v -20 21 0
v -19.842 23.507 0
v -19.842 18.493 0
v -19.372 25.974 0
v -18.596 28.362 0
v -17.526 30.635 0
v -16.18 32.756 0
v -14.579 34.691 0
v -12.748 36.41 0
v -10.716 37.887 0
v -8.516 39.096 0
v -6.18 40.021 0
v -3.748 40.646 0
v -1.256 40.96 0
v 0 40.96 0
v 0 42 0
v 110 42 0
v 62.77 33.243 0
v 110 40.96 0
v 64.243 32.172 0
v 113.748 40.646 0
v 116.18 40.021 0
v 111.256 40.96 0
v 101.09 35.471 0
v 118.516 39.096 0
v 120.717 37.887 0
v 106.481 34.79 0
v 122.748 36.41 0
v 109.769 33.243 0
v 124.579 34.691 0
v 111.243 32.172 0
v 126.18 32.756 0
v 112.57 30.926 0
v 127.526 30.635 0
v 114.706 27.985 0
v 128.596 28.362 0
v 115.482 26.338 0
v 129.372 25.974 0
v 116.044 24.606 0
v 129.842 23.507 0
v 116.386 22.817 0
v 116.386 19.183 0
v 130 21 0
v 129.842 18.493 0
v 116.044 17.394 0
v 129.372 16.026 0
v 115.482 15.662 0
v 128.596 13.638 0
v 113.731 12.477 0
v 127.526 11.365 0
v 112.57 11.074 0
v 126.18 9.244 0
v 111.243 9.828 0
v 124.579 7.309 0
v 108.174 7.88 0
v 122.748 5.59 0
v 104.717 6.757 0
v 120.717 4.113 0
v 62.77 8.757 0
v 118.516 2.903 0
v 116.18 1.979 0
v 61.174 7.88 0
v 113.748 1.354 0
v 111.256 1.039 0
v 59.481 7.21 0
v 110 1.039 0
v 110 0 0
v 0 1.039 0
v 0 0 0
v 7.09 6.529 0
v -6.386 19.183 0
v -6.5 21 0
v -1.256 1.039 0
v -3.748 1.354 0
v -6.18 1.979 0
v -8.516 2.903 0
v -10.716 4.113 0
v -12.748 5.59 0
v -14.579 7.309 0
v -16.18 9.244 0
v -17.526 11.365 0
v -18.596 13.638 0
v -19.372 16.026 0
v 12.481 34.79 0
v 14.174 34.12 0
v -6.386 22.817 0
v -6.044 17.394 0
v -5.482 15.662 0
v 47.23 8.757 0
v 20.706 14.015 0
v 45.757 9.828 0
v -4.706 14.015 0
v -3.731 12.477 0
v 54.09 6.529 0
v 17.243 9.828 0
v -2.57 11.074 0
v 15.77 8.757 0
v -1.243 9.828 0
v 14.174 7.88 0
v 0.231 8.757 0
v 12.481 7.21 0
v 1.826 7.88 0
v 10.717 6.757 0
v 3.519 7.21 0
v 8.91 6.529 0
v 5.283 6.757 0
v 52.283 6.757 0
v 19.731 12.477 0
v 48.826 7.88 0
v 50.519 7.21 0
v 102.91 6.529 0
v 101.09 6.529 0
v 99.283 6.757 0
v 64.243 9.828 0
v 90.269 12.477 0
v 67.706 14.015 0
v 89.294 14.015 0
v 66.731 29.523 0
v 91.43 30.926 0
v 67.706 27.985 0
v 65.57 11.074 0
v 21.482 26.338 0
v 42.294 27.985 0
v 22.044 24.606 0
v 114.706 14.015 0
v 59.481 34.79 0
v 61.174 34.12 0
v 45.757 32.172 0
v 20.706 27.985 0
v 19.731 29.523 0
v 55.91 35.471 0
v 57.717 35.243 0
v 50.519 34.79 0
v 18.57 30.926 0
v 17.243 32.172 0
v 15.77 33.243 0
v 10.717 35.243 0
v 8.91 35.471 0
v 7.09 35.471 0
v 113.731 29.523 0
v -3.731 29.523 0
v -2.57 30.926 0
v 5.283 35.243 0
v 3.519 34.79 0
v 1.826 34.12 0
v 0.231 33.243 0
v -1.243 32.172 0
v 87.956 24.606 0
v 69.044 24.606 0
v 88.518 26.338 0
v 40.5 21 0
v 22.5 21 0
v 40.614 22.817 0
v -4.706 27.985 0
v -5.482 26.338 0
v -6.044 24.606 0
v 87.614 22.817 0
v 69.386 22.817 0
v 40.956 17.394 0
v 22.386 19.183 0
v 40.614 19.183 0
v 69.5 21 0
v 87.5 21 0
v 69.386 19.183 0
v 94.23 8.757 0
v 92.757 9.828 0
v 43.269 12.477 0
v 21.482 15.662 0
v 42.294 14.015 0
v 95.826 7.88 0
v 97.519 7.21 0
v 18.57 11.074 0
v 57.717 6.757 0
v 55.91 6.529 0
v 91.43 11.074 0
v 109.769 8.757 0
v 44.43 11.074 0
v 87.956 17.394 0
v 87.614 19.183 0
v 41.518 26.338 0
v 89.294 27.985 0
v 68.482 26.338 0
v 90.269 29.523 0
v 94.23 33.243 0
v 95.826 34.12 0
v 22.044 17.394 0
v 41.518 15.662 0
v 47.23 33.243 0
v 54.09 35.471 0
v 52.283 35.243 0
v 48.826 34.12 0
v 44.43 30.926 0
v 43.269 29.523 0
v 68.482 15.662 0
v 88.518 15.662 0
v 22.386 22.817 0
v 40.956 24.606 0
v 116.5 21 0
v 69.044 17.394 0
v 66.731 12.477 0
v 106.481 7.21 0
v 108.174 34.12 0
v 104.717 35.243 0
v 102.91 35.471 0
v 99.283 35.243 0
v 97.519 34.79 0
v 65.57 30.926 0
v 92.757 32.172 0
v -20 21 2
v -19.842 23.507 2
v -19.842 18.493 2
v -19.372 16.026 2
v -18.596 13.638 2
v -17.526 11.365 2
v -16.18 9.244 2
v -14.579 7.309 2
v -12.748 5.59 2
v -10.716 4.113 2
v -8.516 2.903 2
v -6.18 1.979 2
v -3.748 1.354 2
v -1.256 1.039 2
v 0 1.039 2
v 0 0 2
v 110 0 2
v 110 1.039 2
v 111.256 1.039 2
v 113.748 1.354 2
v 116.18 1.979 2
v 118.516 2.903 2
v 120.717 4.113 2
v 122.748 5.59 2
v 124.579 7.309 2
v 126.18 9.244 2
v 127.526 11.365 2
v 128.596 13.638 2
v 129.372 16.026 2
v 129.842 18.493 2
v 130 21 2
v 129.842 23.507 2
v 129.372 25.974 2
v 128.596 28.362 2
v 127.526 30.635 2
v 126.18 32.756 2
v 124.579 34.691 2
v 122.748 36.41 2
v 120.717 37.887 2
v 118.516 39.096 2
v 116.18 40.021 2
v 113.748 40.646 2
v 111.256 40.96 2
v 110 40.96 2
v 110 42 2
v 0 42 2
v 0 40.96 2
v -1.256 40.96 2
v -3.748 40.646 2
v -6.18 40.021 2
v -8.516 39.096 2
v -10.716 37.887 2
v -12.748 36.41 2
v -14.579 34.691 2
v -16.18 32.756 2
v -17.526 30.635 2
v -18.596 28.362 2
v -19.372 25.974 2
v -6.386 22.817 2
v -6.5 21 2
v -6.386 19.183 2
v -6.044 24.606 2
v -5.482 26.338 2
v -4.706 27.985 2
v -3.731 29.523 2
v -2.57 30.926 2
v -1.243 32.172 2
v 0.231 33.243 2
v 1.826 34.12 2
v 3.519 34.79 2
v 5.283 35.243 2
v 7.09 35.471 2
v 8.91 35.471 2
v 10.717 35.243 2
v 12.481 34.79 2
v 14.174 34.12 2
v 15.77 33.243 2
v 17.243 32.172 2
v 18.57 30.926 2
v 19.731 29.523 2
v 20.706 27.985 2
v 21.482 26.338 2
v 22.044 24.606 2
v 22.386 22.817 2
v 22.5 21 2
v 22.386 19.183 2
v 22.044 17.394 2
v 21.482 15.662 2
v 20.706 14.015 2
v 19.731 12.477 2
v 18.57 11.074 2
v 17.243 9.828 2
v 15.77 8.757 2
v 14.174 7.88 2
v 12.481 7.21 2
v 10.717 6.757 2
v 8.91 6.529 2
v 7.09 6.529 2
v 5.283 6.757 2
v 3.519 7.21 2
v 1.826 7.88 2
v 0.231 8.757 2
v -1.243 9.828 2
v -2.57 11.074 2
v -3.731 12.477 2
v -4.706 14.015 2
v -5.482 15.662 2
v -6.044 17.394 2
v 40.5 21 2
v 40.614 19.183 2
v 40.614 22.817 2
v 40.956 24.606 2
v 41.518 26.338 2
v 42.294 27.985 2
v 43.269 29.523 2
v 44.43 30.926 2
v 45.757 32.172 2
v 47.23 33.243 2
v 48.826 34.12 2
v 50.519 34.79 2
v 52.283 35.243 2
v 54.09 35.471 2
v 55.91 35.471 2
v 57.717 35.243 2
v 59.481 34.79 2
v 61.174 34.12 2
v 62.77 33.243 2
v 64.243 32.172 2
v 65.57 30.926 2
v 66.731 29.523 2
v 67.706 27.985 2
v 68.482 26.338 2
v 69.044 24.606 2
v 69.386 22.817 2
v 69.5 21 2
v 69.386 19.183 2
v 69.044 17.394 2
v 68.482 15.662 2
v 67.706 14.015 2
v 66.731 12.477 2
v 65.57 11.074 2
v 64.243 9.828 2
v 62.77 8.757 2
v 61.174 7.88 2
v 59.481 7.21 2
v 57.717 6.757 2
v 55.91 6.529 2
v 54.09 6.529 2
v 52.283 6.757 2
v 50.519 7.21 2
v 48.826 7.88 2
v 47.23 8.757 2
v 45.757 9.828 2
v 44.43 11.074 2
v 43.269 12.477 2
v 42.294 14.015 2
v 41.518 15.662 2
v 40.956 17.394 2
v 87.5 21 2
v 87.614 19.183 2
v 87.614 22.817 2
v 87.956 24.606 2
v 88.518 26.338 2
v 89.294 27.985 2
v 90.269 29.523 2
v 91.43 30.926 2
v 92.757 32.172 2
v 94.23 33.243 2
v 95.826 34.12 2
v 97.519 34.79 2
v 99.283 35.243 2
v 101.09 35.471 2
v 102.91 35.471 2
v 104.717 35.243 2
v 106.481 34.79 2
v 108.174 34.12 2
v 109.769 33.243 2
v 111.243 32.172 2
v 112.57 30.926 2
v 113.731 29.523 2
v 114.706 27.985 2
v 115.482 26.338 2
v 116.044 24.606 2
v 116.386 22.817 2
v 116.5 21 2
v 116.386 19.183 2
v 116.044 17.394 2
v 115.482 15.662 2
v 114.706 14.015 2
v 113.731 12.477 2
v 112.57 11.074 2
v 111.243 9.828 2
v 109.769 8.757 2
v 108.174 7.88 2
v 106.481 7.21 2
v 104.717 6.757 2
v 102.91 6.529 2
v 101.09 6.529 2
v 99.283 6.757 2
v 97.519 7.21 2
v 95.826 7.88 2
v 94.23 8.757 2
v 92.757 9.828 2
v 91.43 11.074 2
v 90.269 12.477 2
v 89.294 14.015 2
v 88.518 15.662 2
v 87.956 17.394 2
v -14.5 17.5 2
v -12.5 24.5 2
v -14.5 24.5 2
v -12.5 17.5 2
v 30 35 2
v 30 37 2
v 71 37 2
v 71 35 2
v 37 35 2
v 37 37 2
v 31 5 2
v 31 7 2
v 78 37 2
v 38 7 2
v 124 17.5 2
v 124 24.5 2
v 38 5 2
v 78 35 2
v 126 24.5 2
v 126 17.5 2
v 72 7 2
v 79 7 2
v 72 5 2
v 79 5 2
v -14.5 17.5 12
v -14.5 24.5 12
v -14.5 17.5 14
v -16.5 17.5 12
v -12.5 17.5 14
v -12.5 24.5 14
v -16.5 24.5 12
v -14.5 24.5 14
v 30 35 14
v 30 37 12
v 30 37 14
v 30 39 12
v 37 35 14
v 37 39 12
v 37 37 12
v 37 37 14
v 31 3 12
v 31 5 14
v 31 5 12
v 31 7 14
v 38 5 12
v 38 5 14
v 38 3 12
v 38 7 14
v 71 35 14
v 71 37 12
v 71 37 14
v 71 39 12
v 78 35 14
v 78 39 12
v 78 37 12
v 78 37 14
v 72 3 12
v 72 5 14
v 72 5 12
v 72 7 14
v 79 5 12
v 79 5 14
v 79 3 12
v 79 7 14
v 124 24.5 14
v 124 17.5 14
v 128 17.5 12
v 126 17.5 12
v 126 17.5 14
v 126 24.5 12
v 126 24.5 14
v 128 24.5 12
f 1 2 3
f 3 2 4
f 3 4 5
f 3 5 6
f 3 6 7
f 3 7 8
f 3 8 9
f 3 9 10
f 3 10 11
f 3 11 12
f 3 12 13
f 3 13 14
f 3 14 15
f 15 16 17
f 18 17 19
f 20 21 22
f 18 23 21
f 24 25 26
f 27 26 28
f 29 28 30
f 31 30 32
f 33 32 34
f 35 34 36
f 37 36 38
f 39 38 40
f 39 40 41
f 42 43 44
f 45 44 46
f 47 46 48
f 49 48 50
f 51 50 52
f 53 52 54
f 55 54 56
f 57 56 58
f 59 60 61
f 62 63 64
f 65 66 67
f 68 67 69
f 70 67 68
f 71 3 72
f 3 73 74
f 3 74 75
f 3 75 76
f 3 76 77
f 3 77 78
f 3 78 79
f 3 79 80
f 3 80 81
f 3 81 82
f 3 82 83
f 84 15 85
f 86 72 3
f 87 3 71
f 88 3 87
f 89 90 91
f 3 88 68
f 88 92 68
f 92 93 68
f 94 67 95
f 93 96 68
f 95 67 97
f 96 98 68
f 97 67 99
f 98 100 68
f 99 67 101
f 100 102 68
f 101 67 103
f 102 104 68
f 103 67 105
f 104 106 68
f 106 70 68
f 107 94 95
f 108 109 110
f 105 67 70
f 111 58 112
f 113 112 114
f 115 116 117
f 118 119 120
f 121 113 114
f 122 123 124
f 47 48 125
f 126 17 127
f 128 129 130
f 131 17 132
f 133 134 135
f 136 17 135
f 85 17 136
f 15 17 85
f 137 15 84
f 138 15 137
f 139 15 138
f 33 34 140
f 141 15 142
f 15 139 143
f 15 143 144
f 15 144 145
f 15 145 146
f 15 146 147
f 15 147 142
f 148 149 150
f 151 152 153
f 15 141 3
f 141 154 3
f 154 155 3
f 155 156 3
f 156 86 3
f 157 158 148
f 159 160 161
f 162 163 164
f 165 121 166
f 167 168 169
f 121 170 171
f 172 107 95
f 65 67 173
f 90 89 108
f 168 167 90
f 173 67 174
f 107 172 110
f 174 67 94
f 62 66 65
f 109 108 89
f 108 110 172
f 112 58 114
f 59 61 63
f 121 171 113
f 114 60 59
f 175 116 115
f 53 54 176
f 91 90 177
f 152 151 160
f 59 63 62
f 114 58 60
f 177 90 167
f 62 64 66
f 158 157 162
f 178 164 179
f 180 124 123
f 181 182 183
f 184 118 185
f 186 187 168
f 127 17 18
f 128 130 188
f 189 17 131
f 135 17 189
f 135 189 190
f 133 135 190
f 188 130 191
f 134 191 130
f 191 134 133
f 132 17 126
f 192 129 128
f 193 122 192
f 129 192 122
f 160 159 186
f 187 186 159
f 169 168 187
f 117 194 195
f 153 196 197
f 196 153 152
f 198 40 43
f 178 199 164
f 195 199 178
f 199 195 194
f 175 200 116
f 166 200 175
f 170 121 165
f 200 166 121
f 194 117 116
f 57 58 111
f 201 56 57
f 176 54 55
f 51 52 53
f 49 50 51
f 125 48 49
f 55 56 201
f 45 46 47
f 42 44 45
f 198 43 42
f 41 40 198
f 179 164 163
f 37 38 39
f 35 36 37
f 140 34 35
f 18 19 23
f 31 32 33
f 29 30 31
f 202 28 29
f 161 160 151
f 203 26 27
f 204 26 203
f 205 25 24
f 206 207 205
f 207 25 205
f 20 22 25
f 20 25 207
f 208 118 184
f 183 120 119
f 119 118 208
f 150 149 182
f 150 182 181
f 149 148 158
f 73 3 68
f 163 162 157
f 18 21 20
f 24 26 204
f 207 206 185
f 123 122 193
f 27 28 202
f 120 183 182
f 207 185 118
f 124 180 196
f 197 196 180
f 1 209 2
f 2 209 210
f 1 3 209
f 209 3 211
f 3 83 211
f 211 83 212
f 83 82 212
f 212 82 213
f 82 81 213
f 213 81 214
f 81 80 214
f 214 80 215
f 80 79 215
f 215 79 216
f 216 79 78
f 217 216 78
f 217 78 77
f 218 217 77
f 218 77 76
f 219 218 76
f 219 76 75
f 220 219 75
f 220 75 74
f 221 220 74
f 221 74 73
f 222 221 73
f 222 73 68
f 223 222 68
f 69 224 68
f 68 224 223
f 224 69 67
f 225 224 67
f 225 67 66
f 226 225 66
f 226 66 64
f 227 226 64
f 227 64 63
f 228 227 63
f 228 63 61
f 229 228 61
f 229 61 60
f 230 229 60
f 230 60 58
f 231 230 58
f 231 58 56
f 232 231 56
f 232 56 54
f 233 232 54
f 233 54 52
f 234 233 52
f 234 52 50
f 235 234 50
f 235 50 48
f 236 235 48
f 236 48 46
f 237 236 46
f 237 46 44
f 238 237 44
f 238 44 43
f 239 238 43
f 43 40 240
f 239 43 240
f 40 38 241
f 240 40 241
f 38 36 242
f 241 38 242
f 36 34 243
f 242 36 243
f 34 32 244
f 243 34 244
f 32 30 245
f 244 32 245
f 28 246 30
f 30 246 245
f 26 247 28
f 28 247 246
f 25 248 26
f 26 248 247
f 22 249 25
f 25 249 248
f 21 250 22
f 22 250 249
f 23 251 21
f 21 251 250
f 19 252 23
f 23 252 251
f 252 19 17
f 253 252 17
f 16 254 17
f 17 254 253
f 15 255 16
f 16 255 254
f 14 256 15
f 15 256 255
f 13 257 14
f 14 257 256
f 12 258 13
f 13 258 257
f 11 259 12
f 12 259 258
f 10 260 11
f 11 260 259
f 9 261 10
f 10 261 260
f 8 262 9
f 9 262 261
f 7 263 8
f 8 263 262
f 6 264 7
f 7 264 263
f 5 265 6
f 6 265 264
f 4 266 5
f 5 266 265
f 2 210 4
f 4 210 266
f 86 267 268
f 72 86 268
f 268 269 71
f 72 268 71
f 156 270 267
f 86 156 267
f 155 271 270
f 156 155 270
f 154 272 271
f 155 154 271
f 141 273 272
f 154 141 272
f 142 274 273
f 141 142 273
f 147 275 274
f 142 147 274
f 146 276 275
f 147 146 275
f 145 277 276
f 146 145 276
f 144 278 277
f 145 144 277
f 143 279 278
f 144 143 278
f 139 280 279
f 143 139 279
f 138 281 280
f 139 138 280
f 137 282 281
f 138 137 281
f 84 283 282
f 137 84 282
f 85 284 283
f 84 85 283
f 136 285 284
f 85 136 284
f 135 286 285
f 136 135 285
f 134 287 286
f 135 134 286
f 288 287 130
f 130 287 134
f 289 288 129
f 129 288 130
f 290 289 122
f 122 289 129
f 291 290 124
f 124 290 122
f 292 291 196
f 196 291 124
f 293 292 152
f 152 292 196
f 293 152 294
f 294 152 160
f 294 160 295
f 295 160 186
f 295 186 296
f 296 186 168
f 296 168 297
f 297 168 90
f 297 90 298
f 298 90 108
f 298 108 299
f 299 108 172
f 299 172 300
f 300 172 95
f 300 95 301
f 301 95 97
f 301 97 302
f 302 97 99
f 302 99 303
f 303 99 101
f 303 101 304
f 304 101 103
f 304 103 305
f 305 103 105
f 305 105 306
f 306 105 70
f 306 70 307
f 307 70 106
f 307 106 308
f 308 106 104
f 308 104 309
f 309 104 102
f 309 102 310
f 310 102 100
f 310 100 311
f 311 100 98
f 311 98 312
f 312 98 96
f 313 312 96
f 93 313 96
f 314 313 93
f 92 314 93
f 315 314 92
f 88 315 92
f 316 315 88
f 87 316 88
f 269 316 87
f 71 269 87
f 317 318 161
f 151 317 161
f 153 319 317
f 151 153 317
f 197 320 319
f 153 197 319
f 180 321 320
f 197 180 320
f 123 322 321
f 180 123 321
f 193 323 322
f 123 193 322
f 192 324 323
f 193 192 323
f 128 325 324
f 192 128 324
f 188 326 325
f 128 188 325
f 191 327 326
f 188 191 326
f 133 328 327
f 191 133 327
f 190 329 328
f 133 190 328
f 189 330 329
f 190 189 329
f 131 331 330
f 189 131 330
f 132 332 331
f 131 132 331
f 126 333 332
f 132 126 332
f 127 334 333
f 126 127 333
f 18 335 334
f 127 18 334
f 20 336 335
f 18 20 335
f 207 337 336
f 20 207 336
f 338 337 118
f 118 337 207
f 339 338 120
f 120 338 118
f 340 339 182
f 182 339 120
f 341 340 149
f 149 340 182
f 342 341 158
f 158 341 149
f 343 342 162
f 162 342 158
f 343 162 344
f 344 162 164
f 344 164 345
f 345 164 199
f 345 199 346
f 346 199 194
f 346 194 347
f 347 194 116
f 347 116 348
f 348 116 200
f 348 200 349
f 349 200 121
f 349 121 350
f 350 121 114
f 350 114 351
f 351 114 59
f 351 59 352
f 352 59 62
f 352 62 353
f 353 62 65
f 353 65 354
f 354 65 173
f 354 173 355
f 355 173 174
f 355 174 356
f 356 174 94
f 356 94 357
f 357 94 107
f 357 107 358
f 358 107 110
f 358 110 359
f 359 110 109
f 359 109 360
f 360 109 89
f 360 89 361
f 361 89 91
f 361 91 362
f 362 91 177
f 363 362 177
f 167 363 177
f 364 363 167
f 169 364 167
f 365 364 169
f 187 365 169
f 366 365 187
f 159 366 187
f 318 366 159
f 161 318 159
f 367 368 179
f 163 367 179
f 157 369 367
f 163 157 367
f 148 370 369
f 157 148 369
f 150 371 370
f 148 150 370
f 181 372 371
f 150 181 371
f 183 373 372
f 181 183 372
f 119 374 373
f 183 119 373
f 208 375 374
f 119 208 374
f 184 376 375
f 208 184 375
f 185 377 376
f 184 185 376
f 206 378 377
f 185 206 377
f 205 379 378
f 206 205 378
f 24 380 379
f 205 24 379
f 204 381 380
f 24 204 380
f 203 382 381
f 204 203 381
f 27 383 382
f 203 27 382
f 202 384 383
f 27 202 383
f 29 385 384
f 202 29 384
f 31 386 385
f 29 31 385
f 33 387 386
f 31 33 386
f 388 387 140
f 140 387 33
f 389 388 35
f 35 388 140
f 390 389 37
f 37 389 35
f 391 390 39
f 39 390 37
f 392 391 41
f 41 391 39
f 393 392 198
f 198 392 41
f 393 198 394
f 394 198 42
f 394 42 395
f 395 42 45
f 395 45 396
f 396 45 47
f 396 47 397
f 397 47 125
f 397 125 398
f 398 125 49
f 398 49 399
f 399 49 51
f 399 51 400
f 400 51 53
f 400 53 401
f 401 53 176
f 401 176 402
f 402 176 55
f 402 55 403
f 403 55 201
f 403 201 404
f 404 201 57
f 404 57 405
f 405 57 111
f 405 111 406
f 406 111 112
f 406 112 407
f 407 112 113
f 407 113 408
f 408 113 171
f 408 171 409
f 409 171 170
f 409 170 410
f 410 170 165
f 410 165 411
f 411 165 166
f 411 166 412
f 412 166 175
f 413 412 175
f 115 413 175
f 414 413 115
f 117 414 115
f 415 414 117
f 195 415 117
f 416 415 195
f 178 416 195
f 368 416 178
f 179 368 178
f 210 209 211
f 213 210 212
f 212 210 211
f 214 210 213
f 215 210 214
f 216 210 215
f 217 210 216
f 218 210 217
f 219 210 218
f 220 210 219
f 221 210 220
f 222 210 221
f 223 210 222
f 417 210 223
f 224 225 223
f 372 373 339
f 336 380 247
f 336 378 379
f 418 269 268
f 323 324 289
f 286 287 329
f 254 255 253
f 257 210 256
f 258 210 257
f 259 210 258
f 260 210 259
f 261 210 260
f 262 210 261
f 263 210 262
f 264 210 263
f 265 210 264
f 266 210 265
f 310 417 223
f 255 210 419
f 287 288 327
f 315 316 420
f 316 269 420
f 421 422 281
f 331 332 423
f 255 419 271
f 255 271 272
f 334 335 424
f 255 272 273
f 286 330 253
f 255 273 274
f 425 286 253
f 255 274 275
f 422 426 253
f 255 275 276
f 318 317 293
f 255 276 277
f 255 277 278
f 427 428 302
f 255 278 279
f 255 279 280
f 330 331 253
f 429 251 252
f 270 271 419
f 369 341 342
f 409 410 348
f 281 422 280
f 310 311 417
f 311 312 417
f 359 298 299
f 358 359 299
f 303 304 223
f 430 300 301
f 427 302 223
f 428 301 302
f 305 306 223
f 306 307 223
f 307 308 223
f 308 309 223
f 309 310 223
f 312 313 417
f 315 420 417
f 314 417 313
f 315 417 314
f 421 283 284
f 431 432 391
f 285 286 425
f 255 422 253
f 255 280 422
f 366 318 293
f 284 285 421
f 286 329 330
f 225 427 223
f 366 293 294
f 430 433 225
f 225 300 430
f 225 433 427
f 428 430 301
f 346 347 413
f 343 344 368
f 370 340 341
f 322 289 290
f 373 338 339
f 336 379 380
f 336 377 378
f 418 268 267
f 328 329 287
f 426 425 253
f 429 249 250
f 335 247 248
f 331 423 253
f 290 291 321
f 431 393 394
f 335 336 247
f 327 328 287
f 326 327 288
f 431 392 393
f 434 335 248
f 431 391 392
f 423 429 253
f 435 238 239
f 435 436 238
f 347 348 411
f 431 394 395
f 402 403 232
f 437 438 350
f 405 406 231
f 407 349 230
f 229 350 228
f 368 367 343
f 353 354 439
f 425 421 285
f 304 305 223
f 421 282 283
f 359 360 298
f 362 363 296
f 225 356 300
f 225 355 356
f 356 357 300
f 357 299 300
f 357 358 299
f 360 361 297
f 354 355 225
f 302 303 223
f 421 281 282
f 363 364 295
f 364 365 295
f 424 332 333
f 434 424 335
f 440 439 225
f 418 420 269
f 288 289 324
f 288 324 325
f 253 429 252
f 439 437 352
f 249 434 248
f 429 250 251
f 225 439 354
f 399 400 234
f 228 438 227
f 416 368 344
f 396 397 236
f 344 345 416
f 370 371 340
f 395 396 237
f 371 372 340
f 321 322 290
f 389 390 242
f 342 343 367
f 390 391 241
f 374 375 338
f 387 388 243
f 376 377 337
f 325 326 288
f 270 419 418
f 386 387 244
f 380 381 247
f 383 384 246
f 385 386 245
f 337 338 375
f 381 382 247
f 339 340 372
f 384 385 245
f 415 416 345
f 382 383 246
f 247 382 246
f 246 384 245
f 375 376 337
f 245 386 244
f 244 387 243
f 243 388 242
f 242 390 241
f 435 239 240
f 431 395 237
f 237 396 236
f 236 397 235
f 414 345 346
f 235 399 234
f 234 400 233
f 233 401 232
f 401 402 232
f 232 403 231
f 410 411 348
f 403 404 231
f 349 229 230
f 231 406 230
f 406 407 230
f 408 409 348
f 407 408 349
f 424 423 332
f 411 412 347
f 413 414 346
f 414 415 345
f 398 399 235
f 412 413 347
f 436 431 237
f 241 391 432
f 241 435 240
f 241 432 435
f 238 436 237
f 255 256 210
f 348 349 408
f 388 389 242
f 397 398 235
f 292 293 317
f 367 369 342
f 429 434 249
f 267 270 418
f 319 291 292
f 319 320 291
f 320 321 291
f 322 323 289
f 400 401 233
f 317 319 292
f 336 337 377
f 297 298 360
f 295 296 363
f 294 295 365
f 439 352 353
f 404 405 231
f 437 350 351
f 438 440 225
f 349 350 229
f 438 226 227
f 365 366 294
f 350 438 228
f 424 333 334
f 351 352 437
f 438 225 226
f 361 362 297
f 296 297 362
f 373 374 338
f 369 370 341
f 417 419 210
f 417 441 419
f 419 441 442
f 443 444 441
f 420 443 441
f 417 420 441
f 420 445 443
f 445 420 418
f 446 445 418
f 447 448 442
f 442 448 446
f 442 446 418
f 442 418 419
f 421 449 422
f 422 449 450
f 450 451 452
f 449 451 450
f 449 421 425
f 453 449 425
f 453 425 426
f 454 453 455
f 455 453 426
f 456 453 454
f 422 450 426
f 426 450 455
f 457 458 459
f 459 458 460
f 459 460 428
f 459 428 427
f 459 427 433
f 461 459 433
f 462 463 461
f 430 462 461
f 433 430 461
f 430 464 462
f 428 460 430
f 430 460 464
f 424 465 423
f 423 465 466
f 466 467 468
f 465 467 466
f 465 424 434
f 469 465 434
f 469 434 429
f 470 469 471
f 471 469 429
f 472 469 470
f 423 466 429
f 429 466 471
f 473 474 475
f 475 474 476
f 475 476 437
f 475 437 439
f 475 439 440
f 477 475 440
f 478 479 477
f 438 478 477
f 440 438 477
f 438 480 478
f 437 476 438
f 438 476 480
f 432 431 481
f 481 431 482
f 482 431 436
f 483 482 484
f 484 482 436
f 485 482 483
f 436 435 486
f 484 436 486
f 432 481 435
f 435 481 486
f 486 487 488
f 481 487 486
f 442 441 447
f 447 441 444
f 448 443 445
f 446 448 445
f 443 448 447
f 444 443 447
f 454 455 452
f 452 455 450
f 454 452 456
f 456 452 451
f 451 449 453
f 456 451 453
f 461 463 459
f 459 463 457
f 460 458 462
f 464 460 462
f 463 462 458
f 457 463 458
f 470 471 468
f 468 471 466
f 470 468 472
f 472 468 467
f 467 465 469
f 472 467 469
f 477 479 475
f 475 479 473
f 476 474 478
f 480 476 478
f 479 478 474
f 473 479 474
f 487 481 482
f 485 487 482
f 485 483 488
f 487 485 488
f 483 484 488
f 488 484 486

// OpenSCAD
$fn=50;

difference() {
	union() {
		cube([110, 42, 2]); 
		translate([0,21,0])
			cylinder(h=2, r=20);
		translate([110,21,0])
			cylinder(h=2, r=20);
		rotate ([0,0,180])
			translate ([-38,-7,2])
				tab(width=7);
		rotate ([0,0,180])
			translate ([-79,-7,2])
				tab(width=7);
		rotate ([0,0,0])
			translate ([71,35,2])
				tab(width=7);
		rotate ([0,0,0])
			translate ([30,35,2])
				tab(width=7);
		rotate ([0,0,90])
			translate ([17.5,12.5,2])
				tab(width=7);
		rotate ([0,0,-90])
			translate ([-24.5,124,2])
				tab(width=7);
	}
	translate([55,21,-1])
		cylinder(h=4, r=14.5);
	translate([8,21,-1])
		cylinder(h=4, r=14.5);
	translate([102,21,-1])
		cylinder(h=4, r=14.5);
}

module tab(width) {
	cube([width,2,12]);
	polyhedron(
		points=[ [width,2,10],[width,2,12],[width,4,10],[0,2,12],[0,2,10],[0,4,10] ],
		faces=[ [0,1,3,4], [3,5,4], [3,1,2,5], [0,2,1], [5,2,0,4] ] );
}
